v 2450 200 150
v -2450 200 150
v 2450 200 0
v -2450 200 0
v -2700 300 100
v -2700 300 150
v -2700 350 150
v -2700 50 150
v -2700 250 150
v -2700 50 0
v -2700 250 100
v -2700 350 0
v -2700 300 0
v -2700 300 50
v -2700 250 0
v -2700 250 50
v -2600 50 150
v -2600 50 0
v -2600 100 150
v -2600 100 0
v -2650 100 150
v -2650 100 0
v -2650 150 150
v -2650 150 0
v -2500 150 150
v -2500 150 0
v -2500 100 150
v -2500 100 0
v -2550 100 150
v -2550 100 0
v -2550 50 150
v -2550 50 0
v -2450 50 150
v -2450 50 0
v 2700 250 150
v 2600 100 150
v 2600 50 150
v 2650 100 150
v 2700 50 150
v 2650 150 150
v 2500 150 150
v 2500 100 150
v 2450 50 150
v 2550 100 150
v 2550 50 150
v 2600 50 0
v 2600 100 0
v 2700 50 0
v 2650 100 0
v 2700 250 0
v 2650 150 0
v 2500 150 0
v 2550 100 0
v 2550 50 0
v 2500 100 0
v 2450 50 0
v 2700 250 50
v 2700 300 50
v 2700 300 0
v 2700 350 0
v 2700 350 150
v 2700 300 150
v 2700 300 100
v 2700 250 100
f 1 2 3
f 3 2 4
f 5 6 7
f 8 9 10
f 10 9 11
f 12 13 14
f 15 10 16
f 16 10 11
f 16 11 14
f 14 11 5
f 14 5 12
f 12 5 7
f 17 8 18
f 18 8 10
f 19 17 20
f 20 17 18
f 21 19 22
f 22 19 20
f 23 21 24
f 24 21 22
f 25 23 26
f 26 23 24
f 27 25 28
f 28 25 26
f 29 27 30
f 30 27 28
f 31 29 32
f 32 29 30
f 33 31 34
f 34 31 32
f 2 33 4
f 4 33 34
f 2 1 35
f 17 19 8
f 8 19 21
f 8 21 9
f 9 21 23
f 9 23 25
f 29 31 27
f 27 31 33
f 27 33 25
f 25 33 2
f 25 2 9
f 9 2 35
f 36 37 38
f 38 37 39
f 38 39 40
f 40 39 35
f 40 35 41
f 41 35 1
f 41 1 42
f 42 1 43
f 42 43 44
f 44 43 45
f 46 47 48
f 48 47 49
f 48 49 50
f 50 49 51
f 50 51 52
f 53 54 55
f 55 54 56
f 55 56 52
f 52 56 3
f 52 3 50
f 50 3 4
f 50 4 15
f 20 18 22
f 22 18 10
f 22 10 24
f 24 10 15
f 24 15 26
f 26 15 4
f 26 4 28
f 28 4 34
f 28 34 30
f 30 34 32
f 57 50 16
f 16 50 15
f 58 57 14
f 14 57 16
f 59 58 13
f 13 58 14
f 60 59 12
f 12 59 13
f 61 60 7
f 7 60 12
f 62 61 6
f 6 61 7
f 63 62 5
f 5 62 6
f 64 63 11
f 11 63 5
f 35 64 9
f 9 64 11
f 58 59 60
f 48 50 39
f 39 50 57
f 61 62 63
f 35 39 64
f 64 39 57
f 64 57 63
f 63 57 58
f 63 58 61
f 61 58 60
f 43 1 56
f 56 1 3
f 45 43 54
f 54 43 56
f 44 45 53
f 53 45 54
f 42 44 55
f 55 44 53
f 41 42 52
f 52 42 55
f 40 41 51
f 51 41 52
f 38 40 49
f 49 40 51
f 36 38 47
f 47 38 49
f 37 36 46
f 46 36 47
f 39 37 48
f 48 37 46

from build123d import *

# Parameters (mm, degrees)
BOSS_EXTRUDE1_DEPTH   = 150
BOSS_EXTRUDE1_2_DEPTH = 150
BOSS_EXTRUDE2_DEPTH   = 5400


with BuildPart() as part:
    # Sketch4 → Boss-Extrude1 (new body)
    with BuildSketch(Plane.XY):
        Polygon((-2550, 50), (-2550, 100), (-2500, 100), (-2500, 150), (-2650, 150), (-2650, 100), (-2600, 100), (-2600, 50), (-2700, 50), (-2700, 200), (-2450, 200), (-2450, 50), align=None)
    extrude(amount=BOSS_EXTRUDE1_DEPTH)



with BuildPart() as body_2:
    # Sketch4 → Boss-Extrude1 2 (new body)
    with BuildSketch(Plane.XY):
        Polygon((2600, 50), (2700, 50), (2700, 200), (2450, 200), (2450, 50), (2550, 50), (2550, 100), (2500, 100), (2500, 150), (2650, 150), (2650, 100), (2600, 100), align=None)
    extrude(amount=BOSS_EXTRUDE1_2_DEPTH)


with BuildPart() as part_1:
    add(part.part)

    add(body_2.part)  # Boss-Extrude2 merges body 2
    # Sketch5 → Boss-Extrude2 (add)
    with BuildSketch(Plane.ZY.offset(2700)):
        Polygon((0, 200), (150, 200), (150, 250), (100, 250), (100, 300), (150, 300), (150, 350), (0, 350), (0, 300), (50, 300), (50, 250), (0, 250), align=None)
    extrude(amount=-BOSS_EXTRUDE2_DEPTH)


solid = part_1.part
